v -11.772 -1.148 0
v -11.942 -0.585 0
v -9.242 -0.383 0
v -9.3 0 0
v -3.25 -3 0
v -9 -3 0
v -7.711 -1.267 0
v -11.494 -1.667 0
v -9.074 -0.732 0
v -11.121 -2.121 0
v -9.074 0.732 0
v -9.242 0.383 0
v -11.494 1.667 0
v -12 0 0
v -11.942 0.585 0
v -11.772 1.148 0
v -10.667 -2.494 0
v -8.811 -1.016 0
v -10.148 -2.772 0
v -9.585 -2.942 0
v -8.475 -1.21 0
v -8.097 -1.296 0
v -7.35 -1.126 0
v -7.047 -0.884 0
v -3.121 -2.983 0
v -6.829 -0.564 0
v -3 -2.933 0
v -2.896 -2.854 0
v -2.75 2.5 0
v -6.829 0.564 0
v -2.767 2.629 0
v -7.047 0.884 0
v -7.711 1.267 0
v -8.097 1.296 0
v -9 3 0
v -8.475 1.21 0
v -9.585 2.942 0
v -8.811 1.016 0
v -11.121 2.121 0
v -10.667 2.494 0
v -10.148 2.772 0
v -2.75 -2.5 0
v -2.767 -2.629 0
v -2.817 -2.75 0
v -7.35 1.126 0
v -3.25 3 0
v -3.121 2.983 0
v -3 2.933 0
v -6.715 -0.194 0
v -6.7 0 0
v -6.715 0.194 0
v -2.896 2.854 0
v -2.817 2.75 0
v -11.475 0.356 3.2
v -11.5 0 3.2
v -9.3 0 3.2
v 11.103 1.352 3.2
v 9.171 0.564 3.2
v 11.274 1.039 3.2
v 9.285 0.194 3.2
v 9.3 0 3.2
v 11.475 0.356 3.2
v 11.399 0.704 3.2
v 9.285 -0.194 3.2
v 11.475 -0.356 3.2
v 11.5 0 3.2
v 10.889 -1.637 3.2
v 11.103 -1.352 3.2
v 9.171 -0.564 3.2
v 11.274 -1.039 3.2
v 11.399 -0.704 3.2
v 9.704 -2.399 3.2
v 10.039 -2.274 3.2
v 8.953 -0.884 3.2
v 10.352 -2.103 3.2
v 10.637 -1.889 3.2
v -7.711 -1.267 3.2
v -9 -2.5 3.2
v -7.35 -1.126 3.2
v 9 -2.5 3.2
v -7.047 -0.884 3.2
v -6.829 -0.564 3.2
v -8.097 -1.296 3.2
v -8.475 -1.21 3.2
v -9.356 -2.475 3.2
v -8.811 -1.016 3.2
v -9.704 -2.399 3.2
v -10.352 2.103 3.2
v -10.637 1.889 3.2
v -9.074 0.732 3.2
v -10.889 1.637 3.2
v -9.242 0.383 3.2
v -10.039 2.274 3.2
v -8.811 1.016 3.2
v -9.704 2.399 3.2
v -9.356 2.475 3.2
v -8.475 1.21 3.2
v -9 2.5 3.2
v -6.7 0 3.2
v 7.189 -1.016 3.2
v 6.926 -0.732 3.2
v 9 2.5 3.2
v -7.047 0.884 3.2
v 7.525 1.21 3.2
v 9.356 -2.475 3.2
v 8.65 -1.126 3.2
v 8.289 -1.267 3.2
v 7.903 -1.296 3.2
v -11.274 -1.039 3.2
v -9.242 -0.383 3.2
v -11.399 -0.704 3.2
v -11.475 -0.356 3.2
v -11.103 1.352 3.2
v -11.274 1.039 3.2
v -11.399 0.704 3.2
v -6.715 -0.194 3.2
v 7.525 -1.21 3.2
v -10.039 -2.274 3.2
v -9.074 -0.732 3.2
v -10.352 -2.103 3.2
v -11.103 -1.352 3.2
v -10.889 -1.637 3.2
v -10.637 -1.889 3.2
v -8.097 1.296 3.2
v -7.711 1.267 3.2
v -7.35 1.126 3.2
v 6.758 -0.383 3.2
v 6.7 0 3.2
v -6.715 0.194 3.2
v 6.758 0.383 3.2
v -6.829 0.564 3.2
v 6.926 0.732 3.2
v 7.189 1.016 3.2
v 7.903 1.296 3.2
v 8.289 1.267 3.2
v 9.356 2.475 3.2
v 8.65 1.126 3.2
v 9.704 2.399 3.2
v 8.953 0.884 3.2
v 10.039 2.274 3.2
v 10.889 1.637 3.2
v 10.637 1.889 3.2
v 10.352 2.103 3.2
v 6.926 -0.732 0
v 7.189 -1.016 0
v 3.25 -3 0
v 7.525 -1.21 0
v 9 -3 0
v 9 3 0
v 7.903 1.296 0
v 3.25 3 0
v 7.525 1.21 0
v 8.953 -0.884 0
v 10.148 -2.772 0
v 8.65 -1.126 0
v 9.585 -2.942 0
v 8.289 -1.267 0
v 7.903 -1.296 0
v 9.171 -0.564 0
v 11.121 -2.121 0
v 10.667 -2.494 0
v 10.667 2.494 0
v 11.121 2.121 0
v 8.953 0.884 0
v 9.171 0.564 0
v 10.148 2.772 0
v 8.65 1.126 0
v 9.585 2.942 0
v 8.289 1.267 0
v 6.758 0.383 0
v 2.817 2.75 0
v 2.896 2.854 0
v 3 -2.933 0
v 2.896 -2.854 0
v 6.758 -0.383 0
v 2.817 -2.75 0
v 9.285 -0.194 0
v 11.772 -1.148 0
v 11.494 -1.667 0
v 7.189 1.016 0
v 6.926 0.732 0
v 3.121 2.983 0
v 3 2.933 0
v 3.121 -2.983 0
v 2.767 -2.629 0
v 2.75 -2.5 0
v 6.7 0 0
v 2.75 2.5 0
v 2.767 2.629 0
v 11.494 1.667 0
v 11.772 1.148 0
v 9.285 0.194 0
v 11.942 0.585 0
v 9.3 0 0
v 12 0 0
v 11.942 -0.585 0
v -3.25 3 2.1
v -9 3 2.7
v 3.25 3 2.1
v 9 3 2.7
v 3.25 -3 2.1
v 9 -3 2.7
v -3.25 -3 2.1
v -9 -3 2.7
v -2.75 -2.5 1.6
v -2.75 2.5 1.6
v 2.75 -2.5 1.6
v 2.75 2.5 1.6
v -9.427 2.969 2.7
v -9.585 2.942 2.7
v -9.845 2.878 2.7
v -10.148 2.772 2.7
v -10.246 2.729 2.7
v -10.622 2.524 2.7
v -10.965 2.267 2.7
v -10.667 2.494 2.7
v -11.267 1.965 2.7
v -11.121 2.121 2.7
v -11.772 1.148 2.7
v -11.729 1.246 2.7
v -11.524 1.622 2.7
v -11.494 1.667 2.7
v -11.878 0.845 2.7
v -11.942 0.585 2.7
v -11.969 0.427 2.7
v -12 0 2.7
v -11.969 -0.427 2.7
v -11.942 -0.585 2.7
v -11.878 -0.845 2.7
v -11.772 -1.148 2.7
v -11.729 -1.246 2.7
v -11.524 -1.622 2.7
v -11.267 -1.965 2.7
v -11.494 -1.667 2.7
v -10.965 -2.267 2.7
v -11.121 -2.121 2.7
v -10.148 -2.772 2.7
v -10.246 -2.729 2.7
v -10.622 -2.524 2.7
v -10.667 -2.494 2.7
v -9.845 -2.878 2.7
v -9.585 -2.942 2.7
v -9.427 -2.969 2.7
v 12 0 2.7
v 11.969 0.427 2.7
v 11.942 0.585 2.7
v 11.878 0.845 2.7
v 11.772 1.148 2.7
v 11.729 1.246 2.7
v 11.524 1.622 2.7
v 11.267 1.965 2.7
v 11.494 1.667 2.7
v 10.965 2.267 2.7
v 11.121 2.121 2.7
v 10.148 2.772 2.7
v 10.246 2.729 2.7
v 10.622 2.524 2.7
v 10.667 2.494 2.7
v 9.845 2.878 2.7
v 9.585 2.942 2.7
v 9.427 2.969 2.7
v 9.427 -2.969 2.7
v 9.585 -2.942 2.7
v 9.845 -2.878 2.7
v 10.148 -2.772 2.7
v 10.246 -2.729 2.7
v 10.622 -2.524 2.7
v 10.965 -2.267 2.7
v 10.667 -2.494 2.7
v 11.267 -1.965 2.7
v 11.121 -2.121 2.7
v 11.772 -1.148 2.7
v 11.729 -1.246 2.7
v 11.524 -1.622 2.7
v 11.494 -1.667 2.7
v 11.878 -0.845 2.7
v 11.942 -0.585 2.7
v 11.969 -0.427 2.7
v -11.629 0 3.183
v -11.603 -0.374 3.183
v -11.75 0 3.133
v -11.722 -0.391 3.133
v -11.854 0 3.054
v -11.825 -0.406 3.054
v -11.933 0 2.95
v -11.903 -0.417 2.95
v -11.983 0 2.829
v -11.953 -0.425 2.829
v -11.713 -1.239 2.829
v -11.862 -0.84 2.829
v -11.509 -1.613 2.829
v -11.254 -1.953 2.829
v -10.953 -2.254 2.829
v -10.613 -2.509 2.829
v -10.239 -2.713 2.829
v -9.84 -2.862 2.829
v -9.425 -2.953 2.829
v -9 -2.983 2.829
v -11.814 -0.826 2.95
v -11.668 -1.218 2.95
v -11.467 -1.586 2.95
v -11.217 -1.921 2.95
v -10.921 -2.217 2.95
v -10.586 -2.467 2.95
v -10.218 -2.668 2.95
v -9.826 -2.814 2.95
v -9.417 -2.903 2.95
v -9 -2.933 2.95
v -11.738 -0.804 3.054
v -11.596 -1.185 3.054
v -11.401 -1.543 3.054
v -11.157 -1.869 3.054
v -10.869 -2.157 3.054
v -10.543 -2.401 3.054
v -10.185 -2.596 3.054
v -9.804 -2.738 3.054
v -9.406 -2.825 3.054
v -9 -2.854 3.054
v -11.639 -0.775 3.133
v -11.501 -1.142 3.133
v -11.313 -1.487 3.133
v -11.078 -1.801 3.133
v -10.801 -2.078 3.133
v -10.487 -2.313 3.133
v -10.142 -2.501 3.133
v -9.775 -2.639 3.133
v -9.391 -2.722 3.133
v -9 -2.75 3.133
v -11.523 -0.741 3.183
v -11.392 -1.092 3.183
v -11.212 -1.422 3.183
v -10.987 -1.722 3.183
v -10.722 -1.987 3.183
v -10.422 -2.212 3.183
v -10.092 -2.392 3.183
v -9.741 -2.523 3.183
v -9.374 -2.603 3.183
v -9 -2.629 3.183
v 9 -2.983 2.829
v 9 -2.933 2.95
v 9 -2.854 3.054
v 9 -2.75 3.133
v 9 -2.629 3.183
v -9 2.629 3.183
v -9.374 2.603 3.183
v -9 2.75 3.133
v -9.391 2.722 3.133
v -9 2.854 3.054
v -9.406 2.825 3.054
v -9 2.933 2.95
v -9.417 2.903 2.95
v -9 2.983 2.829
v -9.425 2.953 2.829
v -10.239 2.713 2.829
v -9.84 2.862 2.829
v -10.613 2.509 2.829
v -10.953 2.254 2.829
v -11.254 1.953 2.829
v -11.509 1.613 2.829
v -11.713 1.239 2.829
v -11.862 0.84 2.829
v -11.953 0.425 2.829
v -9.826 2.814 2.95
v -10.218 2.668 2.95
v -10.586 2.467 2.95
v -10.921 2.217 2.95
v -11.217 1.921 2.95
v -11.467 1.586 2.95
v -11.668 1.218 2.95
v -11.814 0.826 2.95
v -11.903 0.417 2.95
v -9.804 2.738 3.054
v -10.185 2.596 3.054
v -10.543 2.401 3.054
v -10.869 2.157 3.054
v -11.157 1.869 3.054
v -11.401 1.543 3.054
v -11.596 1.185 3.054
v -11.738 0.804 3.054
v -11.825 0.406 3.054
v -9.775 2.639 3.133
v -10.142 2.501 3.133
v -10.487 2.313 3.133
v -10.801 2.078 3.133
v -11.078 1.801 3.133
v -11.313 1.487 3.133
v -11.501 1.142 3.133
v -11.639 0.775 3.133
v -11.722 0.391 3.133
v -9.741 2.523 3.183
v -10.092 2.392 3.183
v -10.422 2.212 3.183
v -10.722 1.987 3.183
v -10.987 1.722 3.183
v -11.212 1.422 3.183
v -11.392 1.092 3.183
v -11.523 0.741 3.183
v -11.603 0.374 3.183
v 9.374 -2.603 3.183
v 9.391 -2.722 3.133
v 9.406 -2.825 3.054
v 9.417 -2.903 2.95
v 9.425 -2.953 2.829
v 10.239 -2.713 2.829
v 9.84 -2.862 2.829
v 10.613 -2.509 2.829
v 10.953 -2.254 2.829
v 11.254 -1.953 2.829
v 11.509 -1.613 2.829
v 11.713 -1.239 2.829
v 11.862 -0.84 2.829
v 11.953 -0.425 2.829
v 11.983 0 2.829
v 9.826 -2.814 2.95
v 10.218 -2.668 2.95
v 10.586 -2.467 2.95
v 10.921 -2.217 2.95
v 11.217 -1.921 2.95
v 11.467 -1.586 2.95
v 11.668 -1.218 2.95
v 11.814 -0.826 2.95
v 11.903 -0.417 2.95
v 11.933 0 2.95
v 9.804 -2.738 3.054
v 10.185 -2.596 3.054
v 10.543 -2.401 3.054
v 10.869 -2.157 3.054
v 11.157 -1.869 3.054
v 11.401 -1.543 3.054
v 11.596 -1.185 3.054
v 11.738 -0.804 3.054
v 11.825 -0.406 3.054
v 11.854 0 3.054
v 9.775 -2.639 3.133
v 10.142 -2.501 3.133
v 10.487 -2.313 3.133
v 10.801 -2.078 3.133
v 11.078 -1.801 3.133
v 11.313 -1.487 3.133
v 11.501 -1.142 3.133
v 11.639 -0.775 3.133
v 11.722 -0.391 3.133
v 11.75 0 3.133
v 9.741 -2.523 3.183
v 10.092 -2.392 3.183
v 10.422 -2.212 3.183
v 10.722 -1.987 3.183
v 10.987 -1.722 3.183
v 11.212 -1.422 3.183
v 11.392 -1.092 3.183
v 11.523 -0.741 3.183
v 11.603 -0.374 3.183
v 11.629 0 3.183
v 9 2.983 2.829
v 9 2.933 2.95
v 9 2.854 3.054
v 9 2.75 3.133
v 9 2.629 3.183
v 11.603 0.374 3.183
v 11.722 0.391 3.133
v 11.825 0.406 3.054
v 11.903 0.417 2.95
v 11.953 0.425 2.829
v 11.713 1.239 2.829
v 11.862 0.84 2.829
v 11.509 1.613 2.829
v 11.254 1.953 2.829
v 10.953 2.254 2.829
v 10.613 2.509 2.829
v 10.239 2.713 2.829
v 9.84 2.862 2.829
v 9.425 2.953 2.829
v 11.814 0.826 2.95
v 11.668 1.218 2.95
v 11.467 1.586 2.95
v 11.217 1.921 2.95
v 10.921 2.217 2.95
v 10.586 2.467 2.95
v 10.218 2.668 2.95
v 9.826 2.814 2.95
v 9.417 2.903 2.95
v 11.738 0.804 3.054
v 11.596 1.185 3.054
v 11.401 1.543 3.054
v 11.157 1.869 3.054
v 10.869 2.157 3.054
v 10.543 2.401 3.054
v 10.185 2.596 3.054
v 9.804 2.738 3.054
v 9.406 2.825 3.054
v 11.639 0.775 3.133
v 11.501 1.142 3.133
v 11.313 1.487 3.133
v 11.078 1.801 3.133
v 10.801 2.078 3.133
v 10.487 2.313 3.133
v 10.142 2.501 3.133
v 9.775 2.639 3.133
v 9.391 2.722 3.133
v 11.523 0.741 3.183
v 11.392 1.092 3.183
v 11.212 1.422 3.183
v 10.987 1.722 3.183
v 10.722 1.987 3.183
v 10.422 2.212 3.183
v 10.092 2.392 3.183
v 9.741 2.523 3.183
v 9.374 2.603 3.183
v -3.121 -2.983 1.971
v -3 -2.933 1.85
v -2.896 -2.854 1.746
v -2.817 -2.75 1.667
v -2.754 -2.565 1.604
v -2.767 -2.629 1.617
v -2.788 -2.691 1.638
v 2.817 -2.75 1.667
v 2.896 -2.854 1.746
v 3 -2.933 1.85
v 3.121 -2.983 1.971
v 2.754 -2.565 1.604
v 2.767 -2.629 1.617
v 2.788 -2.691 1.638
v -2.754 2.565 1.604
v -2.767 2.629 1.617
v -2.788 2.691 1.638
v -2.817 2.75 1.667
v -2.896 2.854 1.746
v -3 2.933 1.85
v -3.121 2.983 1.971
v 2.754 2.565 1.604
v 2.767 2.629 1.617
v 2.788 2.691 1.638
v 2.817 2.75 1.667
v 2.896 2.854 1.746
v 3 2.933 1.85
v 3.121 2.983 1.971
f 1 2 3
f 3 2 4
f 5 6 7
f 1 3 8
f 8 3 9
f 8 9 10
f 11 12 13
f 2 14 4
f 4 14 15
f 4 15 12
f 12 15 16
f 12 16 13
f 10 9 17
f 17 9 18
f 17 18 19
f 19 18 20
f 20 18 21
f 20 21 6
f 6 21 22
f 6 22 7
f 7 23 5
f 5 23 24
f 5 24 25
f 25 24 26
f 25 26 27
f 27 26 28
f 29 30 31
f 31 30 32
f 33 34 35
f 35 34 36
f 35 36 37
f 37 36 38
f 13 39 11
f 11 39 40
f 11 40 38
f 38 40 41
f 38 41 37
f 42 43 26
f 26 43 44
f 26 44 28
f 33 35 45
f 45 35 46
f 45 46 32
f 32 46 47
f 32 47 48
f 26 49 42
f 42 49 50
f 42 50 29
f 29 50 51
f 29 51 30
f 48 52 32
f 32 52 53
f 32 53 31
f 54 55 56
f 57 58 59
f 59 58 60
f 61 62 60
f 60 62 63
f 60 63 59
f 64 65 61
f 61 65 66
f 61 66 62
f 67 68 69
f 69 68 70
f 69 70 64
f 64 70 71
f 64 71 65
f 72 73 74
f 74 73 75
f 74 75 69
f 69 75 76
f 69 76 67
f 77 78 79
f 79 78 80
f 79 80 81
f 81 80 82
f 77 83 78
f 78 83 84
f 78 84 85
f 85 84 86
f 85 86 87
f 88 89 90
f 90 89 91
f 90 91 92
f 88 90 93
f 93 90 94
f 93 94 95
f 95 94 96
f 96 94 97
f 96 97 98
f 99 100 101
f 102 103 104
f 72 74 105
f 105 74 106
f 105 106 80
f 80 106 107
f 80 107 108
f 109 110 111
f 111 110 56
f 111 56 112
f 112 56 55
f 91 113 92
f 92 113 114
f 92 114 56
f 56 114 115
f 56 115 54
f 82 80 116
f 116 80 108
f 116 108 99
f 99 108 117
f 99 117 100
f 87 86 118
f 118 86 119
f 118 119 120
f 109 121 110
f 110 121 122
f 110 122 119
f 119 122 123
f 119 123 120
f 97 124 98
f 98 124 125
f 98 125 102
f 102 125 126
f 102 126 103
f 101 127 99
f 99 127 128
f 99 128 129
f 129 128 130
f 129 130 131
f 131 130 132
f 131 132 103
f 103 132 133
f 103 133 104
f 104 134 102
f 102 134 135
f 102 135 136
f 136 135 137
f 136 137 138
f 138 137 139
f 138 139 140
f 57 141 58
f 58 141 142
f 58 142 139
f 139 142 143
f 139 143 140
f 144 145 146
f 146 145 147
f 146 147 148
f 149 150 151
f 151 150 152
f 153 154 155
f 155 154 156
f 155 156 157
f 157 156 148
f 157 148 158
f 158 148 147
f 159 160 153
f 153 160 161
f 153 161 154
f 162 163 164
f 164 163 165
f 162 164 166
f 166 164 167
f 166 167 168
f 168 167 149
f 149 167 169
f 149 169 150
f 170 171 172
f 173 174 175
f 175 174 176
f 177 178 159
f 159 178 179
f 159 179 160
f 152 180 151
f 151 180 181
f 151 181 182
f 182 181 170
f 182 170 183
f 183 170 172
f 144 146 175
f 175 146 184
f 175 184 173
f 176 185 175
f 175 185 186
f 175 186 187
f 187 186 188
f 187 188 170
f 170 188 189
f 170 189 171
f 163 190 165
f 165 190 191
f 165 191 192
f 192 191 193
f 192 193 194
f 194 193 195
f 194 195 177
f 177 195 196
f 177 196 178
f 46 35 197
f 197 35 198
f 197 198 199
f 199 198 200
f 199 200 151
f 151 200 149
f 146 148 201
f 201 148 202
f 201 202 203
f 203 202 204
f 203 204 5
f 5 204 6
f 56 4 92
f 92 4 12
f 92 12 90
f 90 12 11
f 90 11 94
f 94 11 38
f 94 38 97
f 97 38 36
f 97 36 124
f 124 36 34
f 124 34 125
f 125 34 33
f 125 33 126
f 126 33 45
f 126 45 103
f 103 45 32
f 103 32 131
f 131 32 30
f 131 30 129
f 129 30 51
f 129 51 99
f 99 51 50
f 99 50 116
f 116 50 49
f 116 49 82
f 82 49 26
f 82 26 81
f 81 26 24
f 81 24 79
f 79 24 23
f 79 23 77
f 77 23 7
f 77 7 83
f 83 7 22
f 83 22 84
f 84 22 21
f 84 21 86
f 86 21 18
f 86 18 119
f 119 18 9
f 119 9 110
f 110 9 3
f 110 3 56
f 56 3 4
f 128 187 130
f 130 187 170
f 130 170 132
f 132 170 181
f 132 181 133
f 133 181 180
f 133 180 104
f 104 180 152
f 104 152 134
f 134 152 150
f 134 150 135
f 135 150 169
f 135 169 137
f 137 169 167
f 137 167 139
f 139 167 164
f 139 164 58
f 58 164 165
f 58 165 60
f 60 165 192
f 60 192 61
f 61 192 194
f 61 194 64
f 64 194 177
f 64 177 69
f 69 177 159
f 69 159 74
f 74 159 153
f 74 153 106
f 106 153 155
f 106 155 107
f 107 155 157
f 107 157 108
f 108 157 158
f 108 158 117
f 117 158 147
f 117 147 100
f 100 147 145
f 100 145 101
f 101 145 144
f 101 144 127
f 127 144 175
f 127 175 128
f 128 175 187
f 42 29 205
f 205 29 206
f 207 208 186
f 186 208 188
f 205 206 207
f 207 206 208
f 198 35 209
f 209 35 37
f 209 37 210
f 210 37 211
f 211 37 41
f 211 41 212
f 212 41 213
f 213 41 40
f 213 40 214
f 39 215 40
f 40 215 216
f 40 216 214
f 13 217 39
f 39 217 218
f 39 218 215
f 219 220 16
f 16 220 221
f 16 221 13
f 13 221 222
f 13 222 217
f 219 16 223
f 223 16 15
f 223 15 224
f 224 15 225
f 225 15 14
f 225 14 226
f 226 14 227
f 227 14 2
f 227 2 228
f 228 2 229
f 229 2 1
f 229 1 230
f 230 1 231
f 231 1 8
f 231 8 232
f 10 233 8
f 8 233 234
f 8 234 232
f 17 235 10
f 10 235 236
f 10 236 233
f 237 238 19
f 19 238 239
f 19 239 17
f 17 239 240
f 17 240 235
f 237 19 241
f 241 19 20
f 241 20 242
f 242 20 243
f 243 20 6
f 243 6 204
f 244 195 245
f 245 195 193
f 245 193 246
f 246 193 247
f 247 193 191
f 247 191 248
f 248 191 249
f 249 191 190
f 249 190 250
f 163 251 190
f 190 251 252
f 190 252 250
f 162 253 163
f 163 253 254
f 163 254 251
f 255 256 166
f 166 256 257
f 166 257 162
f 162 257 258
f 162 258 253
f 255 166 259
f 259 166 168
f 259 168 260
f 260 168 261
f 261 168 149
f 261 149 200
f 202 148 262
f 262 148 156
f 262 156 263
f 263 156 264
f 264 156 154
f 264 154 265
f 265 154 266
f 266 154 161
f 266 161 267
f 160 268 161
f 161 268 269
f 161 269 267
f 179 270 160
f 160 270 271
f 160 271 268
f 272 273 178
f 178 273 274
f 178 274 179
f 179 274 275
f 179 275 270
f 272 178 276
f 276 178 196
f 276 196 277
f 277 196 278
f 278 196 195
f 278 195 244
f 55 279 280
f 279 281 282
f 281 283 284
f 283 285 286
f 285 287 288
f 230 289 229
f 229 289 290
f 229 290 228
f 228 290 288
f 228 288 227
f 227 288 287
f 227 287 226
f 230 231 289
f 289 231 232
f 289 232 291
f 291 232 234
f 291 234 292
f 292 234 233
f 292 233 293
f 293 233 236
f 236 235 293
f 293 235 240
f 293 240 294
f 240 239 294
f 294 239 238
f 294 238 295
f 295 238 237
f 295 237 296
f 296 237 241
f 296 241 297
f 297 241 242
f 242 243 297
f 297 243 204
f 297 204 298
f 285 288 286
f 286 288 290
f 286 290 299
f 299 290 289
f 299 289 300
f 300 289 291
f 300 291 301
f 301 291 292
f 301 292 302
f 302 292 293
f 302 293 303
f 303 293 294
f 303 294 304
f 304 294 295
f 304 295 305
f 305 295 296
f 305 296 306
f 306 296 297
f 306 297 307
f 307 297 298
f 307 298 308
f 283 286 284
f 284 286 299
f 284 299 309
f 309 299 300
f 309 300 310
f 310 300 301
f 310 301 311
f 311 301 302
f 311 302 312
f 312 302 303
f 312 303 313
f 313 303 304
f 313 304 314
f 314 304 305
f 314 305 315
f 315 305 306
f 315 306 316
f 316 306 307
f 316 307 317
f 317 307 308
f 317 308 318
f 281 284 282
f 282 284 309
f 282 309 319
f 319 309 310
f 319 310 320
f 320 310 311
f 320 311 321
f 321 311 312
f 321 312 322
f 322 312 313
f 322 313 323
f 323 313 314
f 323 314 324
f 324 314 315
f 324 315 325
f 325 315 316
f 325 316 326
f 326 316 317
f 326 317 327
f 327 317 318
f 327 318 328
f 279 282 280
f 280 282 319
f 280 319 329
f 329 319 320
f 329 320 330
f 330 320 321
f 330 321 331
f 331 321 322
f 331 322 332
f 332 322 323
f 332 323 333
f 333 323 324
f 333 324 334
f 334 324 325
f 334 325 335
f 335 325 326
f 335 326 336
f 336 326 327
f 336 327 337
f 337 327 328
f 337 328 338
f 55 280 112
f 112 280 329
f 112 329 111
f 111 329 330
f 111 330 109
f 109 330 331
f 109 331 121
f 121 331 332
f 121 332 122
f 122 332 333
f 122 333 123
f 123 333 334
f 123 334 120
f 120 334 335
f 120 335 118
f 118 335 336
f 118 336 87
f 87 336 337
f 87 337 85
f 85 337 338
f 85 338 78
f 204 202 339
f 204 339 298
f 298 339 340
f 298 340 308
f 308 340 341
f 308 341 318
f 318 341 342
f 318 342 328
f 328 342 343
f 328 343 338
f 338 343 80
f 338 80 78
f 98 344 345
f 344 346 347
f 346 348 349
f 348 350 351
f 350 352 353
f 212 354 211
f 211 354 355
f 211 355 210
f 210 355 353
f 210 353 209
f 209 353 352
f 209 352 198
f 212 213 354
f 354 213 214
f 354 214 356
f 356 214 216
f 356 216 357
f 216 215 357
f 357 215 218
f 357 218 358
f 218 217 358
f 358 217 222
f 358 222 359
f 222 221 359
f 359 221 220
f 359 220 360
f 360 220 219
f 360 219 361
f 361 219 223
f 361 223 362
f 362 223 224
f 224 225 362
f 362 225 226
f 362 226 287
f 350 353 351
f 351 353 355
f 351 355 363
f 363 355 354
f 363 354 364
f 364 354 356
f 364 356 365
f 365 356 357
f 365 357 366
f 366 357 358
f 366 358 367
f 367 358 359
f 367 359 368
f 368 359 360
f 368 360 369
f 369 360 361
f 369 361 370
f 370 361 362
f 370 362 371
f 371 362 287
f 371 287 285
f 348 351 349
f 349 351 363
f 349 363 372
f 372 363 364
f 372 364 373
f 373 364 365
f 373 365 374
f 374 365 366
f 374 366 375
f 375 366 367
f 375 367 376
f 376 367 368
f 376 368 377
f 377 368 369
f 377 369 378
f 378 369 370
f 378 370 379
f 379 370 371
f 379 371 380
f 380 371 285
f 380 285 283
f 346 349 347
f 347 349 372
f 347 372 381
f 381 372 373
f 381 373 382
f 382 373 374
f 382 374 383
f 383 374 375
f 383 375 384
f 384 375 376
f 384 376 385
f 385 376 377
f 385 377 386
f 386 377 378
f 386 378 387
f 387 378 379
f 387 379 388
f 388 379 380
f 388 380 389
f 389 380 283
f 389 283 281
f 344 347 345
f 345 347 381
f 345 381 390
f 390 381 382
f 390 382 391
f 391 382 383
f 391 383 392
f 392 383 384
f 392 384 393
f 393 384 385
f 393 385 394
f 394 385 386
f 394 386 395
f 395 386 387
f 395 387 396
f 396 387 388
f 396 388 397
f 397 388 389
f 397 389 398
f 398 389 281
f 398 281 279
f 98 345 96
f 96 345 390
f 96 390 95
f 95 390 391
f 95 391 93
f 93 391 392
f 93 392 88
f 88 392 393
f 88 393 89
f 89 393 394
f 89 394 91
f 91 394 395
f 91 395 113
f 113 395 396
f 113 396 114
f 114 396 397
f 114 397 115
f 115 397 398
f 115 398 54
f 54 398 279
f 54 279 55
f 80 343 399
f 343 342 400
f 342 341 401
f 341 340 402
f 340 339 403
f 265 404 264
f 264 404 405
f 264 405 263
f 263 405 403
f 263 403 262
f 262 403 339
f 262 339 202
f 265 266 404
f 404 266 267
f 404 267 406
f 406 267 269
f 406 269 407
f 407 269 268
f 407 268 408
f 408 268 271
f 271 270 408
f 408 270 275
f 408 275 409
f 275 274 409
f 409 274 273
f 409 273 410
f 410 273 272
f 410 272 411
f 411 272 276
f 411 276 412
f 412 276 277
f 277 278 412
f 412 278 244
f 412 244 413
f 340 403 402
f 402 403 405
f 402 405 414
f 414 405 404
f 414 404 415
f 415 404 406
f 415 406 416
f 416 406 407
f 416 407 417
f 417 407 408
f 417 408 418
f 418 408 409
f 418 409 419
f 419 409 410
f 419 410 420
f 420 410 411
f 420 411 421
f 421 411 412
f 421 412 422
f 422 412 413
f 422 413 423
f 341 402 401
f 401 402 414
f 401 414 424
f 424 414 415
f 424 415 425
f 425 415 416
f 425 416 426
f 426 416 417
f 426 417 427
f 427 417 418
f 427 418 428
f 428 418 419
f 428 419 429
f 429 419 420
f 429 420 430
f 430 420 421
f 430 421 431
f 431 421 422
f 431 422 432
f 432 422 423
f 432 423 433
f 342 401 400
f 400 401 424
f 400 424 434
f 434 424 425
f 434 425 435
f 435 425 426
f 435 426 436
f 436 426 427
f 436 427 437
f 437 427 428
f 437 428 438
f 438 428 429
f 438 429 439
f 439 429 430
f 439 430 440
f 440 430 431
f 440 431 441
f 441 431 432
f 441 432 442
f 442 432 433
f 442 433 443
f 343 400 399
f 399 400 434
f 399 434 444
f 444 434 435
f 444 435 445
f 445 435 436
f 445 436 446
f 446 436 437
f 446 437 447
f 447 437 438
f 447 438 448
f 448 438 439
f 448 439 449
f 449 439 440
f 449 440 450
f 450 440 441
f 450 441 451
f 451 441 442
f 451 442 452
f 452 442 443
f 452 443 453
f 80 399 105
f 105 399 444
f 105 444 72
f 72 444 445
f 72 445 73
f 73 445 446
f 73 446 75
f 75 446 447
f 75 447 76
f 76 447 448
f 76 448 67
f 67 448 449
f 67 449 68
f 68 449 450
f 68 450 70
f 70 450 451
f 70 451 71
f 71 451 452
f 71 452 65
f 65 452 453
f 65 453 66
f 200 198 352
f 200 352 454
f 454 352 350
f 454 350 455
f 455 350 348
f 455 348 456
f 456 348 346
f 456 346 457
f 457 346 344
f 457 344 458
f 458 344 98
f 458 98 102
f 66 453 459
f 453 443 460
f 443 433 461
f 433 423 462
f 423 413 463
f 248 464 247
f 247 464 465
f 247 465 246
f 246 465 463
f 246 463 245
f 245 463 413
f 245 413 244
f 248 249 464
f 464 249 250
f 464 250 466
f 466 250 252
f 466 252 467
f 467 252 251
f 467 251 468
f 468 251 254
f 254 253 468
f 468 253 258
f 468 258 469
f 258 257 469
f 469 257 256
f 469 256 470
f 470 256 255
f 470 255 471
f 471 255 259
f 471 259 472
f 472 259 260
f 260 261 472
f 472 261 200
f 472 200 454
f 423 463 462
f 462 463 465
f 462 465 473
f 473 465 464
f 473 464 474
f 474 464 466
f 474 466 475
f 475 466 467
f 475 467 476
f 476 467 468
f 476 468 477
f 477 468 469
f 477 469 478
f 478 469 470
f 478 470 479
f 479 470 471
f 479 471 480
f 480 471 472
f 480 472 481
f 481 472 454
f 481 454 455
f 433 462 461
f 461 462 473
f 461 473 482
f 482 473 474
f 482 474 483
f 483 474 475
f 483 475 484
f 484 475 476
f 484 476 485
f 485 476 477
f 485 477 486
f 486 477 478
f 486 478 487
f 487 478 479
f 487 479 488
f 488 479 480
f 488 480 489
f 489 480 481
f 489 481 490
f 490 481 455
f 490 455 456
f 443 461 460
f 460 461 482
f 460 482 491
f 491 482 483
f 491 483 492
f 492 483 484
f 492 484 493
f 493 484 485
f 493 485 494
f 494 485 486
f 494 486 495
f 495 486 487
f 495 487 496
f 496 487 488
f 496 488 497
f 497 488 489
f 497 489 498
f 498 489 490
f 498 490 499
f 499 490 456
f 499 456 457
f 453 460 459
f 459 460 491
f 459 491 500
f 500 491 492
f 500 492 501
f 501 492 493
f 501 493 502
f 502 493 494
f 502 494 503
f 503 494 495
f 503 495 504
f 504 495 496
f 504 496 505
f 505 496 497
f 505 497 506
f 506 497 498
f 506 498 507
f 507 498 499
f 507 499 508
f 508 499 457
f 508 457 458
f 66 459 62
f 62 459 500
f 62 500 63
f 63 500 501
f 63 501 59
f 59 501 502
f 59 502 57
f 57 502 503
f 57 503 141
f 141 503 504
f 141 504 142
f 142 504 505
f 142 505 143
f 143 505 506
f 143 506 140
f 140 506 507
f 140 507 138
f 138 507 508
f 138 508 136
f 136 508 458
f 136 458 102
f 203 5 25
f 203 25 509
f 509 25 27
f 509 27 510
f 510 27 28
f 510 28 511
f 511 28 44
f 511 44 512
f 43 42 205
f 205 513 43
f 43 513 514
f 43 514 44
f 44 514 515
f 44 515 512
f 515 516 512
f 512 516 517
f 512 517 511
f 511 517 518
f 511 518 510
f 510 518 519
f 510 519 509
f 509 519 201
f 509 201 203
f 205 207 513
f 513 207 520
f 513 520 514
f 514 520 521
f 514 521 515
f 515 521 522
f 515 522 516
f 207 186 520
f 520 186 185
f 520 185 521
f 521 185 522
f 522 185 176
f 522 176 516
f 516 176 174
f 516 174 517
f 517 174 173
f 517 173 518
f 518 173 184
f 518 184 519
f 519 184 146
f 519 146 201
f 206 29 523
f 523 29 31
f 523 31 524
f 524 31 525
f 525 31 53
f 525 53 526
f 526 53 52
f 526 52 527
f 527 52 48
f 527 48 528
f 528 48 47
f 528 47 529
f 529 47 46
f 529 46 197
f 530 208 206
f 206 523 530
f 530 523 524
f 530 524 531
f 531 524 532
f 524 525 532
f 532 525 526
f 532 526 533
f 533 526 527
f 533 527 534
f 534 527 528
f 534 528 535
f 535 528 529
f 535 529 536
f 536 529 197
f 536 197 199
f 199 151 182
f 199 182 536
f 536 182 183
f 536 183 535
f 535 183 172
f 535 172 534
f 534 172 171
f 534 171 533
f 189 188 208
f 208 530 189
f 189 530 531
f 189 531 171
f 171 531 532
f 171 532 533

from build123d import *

# Parameters (mm, degrees)
SKETCH1_W           = 24
SKETCH1_H           = 6
SKETCH1_R           = 1.3
BOSS_EXTRUDE1_DEPTH = 3.2
SKETCH2_W           = 5.5
SKETCH2_H           = 6
CUT_EXTRUDE1_DEPTH  = 1.6
FILLET1_R           = 3
FILLET2_R           = 0.5


with BuildPart() as part:
    # Sketch1 → Boss-Extrude1 (new body)
    with BuildSketch(Plane.XY):
        Rectangle(SKETCH1_W, SKETCH1_H)
        with Locations((-8, 0)):
            Circle(SKETCH1_R, mode=Mode.SUBTRACT)
        with Locations((8, 0)):
            Circle(SKETCH1_R, mode=Mode.SUBTRACT)
    extrude(amount=BOSS_EXTRUDE1_DEPTH)

    # Sketch2 → Cut-Extrude1 (cut)
    with BuildSketch(Plane(origin=(0, 0, 0), x_dir=(-1, 0, 0), z_dir=(0, 0, -1))):
        Rectangle(SKETCH2_W, SKETCH2_H)
    extrude(amount=-CUT_EXTRUDE1_DEPTH, mode=Mode.SUBTRACT)

    # Fillet1
    fillet1_edges = [part.edges().sort_by_distance(p)[0] for p in [
        (-12, -3, 1.6),
        (-12, 3, 1.6),
        (12, -3, 1.6),
        (12, 3, 1.6),
    ]]
    fillet(fillet1_edges, radius=FILLET1_R - 0.0001)  # a hair under: the kernel refuses the full size

    # Fillet2
    fillet2_edges = [part.edges().sort_by_distance(p)[0] for p in [
        (-2.75, 3, 0.8),
        (0, -3, 1.6),
        (-2.75, -3, 0.8),
        (2.75, -3, 0.8),
        (0, 3, 1.6),
        (2.75, 3, 0.8),
        (0, -3, 3.2),
        (0, 3, 3.2),
        (11.121349633, 2.121349633, 3.2),
        (11.121349633, -2.121349633, 3.2),
        (-11.121349633, 2.121349633, 3.2),
        (-11.121349633, -2.121349633, 3.2),
    ]]
    fillet(fillet2_edges, radius=FILLET2_R)


solid = part.part
